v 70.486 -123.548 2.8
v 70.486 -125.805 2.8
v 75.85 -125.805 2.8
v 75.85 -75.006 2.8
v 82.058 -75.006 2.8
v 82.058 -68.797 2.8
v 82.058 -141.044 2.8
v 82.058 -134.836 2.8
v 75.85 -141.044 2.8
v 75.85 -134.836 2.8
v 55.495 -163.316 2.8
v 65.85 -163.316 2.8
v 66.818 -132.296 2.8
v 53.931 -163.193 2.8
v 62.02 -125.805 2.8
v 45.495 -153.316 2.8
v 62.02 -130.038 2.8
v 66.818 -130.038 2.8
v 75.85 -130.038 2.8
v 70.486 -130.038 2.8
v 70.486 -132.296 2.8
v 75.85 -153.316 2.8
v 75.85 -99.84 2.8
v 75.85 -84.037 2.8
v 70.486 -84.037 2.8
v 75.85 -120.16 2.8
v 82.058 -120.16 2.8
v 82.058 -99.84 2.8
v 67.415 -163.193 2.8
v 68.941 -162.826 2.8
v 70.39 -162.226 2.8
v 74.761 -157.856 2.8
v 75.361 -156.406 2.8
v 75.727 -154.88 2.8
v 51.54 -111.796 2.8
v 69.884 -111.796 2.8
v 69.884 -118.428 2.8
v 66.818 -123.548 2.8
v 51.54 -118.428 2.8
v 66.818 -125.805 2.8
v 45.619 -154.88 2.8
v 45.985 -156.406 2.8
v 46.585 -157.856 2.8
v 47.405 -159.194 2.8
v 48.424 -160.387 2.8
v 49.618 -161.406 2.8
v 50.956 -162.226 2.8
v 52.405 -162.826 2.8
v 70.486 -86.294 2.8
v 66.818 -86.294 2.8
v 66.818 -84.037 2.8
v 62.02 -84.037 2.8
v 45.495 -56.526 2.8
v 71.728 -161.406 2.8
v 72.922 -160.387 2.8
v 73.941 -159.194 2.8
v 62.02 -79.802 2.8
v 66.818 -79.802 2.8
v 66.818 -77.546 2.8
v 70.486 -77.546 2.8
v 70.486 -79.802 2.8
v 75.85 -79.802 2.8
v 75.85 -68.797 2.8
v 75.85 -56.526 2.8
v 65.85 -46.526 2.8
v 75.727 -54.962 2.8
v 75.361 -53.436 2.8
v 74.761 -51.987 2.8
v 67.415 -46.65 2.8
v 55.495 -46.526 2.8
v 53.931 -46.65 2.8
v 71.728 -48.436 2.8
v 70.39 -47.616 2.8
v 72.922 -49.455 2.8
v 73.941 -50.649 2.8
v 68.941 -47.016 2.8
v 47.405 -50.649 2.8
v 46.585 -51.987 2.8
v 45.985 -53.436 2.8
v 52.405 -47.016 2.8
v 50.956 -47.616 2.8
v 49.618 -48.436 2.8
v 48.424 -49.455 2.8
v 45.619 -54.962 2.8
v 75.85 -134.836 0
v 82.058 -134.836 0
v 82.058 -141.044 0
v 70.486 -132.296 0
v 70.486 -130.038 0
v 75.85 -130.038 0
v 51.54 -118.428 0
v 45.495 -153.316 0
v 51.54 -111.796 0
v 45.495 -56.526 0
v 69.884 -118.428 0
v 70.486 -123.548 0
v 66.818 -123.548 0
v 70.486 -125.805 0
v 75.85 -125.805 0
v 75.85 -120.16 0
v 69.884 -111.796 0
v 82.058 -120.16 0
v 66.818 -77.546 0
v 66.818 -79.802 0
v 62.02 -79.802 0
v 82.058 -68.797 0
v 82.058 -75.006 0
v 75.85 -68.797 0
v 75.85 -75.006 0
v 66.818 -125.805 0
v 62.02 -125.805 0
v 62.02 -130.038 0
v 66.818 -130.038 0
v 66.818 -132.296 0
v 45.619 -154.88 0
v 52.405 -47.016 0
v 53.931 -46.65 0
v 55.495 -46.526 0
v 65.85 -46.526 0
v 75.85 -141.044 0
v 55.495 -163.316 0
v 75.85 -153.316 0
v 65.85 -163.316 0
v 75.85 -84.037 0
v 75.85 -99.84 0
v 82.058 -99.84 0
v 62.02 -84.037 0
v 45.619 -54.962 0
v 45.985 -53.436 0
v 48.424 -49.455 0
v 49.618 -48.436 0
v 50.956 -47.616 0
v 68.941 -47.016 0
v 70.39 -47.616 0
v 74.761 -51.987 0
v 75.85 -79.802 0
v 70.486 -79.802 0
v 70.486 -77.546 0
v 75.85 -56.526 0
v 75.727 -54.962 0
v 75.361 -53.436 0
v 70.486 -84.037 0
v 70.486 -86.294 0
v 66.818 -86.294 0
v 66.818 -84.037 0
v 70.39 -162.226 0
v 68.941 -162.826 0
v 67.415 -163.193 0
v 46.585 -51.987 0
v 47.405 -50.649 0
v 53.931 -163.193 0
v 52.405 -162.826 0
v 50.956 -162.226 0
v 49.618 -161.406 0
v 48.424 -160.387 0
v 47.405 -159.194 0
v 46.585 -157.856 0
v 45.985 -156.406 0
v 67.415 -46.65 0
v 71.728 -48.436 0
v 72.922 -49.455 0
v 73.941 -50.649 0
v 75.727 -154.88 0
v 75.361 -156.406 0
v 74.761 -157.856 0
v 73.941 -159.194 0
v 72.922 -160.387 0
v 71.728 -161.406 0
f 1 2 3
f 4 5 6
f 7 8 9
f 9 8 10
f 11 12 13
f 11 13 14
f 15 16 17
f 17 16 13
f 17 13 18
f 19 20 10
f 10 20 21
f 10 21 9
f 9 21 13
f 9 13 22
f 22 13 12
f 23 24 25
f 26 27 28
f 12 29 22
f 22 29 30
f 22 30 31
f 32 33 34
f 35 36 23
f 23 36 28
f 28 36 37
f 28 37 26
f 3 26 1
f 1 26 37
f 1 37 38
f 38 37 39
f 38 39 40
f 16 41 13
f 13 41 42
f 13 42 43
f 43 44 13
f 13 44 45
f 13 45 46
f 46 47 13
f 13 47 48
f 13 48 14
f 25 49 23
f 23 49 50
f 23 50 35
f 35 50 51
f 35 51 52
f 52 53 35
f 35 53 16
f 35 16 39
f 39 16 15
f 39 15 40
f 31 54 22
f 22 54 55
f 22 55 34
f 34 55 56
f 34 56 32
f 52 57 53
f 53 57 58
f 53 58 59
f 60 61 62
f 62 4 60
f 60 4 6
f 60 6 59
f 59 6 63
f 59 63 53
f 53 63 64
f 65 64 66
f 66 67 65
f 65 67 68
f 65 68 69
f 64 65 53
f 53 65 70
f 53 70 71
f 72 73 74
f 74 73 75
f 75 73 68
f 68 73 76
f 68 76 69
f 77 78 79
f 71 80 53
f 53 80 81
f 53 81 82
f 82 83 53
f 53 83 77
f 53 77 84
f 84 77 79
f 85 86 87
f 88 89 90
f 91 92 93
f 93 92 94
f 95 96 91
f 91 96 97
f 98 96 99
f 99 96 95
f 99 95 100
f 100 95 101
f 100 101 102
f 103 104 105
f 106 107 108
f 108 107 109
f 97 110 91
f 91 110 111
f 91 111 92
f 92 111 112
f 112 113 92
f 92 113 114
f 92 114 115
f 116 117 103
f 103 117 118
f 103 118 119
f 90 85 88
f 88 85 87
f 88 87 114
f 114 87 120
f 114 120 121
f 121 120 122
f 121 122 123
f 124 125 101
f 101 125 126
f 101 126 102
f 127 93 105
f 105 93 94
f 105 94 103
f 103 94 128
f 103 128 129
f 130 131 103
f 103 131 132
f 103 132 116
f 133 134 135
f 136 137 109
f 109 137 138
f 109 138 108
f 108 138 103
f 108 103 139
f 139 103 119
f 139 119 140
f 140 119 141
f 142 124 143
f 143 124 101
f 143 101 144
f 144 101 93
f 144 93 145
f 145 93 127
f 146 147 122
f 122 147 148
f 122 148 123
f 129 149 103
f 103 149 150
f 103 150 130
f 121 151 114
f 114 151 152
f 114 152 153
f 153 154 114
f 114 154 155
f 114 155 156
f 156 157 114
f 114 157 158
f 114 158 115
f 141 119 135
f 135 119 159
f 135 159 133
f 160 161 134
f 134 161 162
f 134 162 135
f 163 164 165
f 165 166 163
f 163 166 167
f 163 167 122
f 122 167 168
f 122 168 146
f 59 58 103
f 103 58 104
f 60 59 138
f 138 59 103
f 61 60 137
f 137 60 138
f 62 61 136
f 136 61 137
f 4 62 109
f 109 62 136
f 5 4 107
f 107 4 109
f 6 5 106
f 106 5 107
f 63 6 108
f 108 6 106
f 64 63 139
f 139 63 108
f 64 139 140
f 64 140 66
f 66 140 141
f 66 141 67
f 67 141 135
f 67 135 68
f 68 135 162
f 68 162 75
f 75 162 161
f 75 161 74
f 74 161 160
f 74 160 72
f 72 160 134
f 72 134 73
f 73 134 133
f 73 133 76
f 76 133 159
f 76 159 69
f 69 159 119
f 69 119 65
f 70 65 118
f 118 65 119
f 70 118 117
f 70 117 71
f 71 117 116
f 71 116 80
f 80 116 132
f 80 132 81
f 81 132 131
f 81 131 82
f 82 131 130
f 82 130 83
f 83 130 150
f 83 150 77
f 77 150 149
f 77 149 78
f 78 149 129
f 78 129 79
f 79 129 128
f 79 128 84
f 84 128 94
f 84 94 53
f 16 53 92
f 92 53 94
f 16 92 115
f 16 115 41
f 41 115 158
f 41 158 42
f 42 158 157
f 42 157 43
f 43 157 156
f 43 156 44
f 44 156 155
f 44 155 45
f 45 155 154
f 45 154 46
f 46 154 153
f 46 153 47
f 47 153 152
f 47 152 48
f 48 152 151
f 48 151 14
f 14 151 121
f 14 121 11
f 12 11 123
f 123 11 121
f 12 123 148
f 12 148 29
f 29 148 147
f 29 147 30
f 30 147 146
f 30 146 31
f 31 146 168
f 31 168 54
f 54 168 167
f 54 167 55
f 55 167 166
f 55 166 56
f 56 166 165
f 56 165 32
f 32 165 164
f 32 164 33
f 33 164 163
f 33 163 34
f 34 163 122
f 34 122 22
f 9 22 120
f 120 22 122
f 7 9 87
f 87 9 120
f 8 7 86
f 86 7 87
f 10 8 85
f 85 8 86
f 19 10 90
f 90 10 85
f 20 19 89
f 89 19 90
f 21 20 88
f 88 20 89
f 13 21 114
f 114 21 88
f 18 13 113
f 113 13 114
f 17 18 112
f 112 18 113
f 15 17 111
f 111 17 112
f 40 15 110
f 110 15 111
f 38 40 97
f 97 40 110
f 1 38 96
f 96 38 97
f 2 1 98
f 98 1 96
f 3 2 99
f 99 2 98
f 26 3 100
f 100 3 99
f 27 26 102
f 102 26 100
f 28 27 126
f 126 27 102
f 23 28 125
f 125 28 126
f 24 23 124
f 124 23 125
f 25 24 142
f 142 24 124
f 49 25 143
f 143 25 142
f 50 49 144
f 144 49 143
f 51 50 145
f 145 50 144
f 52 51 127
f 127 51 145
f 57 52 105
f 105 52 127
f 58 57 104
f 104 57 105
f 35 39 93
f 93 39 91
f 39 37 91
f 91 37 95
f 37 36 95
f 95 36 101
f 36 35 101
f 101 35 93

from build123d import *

# Parameters (mm, degrees)
SKETCH3_W           = 18.344
SKETCH3_H           = 6.63149511
BOSS_EXTRUDE2_DEPTH = 2.8


with BuildPart() as part:
    # Sketch3 → Boss-Extrude2 (new body)
    with BuildSketch(Plane.XY):
        with BuildLine():
            Line((55.495440626, -46.5265), (65.850440626, -46.5265))
            ThreePointArc((65.850440626, -46.5265), (72.921508438, -49.455432188), (75.850440626, -56.5265))
            Line((75.850440626, -56.5265), (75.850440626, -68.7965))
            Line((75.850440626, -68.7965), (82.058440626, -68.7965))
            Line((82.058440626, -68.7965), (82.058440626, -75.0055))
            Line((82.058440626, -75.0055), (75.850440626, -75.0055))
            Line((75.850440626, -75.0055), (75.850440626, -79.8025))
            Line((75.850440626, -79.8025), (70.486440626, -79.8025))
            Line((70.486440626, -79.8025), (70.486440626, -77.5455))
            Line((70.486440626, -77.5455), (66.818440626, -77.5455))
            Line((66.818440626, -77.5455), (66.818440626, -79.8025))
            Line((66.818440626, -79.8025), (62.020440626, -79.8025))
            Line((62.020440626, -79.8025), (62.020440626, -84.0365))
            Line((62.020440626, -84.0365), (66.818440626, -84.0365))
            Line((66.818440626, -84.0365), (66.818440626, -86.2935))
            Line((66.818440626, -86.2935), (70.486440626, -86.2935))
            Line((70.486440626, -86.2935), (70.486440626, -84.0365))
            Line((70.486440626, -84.0365), (75.850440626, -84.0365))
            Line((75.850440626, -84.0365), (75.850440626, -99.8395))
            Line((75.850440626, -99.8395), (82.058440626, -99.8395))
            Line((82.058440626, -99.8395), (82.058440626, -120.1605))
            Line((82.058440626, -120.1605), (75.850440626, -120.1605))
            Line((75.850440626, -120.1605), (75.850440626, -125.8055))
            Line((75.850440626, -125.8055), (70.486440626, -125.8055))
            Line((70.486440626, -125.8055), (70.486440626, -123.5475))
            Line((70.486440626, -123.5475), (66.818440626, -123.5475))
            Line((66.818440626, -123.5475), (66.818440626, -125.8055))
            Line((66.818440626, -125.8055), (62.020440626, -125.8055))
            Line((62.020440626, -125.8055), (62.020440626, -130.0385))
            Line((62.020440626, -130.0385), (66.818440626, -130.0385))
            Line((66.818440626, -130.0385), (66.818440626, -132.2955))
            Line((66.818440626, -132.2955), (70.486440626, -132.2955))
            Line((70.486440626, -132.2955), (70.486440626, -130.0385))
            Line((70.486440626, -130.0385), (75.850440626, -130.0385))
            Line((75.850440626, -130.0385), (75.850440626, -134.8365))
            Line((75.850440626, -134.8365), (82.058440626, -134.8365))
            Line((82.058440626, -134.8365), (82.058440626, -141.0445))
            Line((82.058440626, -141.0445), (75.850440626, -141.0445))
            Line((75.850440626, -141.0445), (75.850440626, -153.315747555))
            ThreePointArc((75.850440626, -153.315747555), (72.921508438, -160.386815367), (65.850440626, -163.315747555))
            Line((65.850440626, -163.315747555), (55.495440626, -163.315747555))
            ThreePointArc((55.495440626, -163.315747555), (48.424372815, -160.386815367), (45.495440626, -153.315747555))
            Line((45.495440626, -153.315747555), (45.495440626, -149.654747555))
            Line((45.495440626, -149.654747555), (45.495440626, -56.5265))
            ThreePointArc((45.495440626, -56.5265), (48.424372815, -49.455432188), (55.495440626, -46.5265))
        make_face()
        with Locations((60.71181161, -115.112247555)):
            Rectangle(SKETCH3_W, SKETCH3_H, mode=Mode.SUBTRACT)
    extrude(amount=BOSS_EXTRUDE2_DEPTH)


solid = part.part
